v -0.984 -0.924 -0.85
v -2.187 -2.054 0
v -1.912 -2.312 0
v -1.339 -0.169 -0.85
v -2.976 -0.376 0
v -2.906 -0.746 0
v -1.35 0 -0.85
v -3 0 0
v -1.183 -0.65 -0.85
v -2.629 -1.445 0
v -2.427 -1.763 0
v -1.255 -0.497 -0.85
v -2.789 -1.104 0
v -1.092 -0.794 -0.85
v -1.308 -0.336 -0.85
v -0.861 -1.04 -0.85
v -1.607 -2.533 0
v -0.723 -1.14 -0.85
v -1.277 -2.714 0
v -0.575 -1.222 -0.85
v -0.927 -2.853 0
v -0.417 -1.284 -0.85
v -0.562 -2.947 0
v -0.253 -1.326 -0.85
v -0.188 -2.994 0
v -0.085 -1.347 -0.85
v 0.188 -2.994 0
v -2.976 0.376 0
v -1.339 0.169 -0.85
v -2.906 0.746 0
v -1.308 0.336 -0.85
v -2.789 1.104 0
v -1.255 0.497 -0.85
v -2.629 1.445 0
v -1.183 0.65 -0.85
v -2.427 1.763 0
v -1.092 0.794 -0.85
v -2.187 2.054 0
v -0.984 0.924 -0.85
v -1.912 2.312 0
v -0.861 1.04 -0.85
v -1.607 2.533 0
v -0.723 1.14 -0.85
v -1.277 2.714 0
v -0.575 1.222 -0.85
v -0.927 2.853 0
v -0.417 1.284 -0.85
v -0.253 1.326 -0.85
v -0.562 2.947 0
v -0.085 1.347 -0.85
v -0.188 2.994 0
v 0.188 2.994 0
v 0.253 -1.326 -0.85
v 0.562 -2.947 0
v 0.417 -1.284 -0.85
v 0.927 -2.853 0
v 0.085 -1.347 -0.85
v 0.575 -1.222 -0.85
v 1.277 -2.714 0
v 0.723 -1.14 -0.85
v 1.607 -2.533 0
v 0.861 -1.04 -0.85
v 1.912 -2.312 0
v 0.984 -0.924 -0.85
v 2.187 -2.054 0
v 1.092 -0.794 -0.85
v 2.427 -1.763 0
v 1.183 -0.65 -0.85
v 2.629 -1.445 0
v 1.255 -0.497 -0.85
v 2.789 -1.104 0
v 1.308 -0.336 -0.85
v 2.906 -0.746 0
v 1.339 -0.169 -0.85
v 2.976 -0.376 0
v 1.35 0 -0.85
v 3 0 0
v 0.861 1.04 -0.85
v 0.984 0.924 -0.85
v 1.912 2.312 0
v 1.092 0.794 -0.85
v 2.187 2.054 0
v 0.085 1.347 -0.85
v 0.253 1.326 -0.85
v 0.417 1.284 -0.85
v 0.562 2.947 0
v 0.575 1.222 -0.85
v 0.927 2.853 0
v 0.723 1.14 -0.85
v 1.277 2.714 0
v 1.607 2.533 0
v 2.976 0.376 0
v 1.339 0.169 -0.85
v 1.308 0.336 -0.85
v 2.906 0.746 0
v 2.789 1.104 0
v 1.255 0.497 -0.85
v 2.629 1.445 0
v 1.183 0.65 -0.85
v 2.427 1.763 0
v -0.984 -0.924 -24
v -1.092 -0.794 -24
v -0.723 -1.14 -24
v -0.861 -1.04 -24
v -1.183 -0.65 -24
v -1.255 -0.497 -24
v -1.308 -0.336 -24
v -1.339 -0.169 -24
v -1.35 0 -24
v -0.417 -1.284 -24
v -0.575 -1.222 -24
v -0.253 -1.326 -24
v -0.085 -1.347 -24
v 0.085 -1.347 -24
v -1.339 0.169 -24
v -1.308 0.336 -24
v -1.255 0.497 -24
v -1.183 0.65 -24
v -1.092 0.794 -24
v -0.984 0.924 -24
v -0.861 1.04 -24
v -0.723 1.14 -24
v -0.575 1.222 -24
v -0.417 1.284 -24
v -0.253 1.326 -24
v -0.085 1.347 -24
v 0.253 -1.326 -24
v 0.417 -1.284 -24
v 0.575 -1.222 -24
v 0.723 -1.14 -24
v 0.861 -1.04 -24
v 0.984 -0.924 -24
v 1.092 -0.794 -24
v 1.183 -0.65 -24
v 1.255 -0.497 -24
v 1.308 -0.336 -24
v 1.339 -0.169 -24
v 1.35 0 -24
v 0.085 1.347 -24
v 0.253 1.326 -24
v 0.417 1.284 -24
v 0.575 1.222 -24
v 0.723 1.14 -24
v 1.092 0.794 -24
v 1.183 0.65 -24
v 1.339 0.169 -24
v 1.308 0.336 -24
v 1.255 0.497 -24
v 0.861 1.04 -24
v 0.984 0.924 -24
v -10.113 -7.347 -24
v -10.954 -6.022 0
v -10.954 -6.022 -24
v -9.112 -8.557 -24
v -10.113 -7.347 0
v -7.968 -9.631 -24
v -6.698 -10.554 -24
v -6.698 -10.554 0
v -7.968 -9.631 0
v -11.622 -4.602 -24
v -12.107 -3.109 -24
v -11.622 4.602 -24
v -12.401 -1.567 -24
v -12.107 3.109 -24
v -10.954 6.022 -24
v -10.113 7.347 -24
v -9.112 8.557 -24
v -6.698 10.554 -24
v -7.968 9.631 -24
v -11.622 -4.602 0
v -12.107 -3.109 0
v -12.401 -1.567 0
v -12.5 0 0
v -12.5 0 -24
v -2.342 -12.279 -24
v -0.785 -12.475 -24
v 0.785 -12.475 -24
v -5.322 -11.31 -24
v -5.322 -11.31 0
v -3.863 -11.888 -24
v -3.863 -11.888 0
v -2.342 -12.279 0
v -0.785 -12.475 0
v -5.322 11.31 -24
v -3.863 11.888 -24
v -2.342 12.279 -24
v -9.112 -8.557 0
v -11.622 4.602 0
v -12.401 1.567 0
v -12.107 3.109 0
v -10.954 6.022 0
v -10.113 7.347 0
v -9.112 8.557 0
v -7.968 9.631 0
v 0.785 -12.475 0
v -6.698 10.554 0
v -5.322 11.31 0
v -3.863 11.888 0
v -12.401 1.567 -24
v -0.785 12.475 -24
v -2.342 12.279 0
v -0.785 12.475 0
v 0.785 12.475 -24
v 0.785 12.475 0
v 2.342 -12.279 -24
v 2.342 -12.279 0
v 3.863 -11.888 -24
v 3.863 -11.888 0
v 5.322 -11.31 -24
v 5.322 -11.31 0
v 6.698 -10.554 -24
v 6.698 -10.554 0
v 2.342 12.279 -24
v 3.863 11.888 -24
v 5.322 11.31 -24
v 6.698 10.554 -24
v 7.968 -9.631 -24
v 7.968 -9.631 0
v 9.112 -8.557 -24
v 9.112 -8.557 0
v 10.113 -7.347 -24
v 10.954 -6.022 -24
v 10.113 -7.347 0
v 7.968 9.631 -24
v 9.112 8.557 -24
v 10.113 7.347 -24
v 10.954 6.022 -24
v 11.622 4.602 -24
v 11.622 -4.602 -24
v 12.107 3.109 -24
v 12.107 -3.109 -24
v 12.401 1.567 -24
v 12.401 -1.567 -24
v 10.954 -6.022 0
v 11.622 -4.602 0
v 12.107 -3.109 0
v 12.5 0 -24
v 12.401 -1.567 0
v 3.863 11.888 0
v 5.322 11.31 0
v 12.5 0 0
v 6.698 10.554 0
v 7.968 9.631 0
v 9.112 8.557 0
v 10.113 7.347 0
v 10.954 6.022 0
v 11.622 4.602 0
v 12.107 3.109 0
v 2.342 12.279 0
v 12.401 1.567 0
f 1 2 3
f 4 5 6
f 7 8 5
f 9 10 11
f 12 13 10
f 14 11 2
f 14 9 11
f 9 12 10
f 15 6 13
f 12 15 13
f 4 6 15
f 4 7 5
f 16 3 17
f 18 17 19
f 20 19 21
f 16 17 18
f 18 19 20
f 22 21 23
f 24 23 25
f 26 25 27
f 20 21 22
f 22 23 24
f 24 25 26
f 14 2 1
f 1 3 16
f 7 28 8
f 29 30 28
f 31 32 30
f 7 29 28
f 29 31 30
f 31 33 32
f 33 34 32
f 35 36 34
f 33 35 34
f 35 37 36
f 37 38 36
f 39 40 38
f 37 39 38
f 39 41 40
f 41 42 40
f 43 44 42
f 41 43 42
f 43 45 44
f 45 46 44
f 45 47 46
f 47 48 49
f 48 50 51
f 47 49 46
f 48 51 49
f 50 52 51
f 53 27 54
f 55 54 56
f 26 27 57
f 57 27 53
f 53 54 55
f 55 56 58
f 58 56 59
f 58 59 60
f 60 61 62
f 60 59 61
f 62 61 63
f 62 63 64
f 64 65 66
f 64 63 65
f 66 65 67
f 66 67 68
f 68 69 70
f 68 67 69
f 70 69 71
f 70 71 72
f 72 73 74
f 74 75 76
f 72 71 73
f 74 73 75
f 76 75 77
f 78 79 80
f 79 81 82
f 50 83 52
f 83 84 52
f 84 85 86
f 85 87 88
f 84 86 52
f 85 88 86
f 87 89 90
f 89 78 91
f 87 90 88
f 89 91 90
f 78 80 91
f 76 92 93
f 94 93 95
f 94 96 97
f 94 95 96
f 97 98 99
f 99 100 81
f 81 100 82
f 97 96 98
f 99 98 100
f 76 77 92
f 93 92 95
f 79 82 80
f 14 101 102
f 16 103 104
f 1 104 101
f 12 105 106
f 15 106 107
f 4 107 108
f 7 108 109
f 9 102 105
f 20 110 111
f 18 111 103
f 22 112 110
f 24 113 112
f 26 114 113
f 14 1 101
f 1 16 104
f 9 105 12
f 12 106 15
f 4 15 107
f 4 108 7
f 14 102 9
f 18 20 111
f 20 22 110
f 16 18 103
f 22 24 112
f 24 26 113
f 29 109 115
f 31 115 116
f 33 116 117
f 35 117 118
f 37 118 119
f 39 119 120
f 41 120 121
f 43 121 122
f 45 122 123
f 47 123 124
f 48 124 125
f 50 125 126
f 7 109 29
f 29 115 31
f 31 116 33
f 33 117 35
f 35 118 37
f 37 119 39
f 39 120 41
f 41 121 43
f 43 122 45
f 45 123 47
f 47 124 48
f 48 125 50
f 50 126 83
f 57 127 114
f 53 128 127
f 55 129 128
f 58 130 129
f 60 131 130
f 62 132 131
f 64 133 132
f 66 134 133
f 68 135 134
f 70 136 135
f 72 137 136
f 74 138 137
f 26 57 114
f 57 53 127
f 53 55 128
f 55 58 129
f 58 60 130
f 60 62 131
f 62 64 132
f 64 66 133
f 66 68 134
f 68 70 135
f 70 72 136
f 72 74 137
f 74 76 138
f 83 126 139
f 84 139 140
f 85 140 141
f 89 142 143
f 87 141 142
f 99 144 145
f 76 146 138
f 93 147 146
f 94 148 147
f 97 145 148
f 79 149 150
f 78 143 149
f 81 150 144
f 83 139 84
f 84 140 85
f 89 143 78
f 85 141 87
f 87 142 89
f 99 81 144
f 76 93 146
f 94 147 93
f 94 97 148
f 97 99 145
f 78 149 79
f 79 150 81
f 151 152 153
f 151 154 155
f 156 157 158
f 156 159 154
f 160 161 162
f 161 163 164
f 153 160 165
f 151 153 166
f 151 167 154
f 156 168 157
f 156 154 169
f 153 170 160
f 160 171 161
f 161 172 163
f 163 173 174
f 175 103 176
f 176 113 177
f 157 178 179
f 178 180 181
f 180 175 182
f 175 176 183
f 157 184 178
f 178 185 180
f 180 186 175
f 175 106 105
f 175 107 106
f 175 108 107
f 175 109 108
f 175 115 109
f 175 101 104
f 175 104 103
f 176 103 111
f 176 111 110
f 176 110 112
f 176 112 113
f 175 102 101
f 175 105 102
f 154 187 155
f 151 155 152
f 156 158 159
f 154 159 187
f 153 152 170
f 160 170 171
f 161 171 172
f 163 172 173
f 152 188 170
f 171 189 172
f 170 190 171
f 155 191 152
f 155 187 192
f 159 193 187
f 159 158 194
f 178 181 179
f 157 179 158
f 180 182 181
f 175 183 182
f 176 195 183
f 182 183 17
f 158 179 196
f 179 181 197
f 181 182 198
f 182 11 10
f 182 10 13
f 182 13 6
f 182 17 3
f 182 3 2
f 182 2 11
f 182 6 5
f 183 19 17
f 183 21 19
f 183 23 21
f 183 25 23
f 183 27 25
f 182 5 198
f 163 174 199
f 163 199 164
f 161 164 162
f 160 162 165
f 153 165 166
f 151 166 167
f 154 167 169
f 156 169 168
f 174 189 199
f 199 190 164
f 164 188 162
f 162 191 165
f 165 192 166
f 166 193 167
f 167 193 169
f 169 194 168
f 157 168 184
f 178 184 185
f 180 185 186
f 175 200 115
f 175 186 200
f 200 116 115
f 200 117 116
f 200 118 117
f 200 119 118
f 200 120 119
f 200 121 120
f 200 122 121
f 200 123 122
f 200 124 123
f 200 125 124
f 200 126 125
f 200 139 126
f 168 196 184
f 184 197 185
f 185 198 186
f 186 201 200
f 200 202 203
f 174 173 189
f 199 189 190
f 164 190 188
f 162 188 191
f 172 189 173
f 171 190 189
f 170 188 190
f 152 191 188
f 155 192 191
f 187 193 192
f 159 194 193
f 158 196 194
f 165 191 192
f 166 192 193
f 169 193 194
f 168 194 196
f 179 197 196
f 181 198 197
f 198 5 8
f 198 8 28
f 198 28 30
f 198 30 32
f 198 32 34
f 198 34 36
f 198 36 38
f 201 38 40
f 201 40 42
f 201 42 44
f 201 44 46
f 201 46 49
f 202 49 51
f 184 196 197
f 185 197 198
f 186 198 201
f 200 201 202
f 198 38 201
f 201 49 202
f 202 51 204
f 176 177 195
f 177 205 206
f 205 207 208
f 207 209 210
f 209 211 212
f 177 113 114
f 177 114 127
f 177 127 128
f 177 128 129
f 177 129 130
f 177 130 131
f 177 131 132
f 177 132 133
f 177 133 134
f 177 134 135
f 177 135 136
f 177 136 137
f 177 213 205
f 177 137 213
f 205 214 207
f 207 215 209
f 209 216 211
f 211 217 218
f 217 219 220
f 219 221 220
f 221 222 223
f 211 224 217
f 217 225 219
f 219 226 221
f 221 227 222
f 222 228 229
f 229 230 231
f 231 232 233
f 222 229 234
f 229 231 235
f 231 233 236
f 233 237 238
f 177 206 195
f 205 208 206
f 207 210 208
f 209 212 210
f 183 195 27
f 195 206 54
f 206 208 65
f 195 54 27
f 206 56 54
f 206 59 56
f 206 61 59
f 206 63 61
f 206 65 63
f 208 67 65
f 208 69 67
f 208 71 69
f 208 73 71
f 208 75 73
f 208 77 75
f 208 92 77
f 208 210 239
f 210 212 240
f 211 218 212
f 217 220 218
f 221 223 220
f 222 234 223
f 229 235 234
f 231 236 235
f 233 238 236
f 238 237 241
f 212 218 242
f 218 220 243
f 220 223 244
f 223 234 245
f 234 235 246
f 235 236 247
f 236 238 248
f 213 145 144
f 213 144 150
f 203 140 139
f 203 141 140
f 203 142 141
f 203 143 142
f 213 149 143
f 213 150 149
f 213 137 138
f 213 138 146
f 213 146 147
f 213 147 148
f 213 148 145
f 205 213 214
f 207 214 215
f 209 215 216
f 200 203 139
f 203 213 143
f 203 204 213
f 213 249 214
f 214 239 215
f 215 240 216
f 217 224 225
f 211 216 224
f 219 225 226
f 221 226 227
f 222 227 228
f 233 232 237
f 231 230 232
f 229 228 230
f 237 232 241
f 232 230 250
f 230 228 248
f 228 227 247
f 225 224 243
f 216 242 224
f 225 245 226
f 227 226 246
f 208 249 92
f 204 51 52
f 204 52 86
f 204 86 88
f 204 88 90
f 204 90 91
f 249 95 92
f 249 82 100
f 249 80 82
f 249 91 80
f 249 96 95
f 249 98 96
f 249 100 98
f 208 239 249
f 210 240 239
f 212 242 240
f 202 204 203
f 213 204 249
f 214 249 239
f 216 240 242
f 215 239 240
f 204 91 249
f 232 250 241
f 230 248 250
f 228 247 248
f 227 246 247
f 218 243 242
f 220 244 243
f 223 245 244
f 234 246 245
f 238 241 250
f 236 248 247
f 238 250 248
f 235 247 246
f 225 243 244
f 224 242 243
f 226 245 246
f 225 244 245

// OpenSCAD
$fn = 50;

difference() {
	union() {
		translate(v = [0, 0, -24.0]) {
			cylinder(h = 24, r = 12.5);
		}
	}
	union() {
		translate(v = [0, 0, 0]) {
			rotate(a = [0, 0, 0]) {
				difference() {
					union() {
						translate(v = [0, 0, -27.0]) {
							cylinder(h = 27, r = 1.0);
						}
						translate(v = [0, 0, -0.85]) {
							cylinder(h = 0.85, r1 = 1.35, r2 = 3.0);
						}
						translate(v = [0, 0, -27.0]) {
							cylinder(h = 27, r = 1.35);
						}
						translate(v = [0, 0, -27.0]) {
							cylinder(h = 27, r = 1.0);
						}
					}
					union();
				}
			}
		}
	}
}
